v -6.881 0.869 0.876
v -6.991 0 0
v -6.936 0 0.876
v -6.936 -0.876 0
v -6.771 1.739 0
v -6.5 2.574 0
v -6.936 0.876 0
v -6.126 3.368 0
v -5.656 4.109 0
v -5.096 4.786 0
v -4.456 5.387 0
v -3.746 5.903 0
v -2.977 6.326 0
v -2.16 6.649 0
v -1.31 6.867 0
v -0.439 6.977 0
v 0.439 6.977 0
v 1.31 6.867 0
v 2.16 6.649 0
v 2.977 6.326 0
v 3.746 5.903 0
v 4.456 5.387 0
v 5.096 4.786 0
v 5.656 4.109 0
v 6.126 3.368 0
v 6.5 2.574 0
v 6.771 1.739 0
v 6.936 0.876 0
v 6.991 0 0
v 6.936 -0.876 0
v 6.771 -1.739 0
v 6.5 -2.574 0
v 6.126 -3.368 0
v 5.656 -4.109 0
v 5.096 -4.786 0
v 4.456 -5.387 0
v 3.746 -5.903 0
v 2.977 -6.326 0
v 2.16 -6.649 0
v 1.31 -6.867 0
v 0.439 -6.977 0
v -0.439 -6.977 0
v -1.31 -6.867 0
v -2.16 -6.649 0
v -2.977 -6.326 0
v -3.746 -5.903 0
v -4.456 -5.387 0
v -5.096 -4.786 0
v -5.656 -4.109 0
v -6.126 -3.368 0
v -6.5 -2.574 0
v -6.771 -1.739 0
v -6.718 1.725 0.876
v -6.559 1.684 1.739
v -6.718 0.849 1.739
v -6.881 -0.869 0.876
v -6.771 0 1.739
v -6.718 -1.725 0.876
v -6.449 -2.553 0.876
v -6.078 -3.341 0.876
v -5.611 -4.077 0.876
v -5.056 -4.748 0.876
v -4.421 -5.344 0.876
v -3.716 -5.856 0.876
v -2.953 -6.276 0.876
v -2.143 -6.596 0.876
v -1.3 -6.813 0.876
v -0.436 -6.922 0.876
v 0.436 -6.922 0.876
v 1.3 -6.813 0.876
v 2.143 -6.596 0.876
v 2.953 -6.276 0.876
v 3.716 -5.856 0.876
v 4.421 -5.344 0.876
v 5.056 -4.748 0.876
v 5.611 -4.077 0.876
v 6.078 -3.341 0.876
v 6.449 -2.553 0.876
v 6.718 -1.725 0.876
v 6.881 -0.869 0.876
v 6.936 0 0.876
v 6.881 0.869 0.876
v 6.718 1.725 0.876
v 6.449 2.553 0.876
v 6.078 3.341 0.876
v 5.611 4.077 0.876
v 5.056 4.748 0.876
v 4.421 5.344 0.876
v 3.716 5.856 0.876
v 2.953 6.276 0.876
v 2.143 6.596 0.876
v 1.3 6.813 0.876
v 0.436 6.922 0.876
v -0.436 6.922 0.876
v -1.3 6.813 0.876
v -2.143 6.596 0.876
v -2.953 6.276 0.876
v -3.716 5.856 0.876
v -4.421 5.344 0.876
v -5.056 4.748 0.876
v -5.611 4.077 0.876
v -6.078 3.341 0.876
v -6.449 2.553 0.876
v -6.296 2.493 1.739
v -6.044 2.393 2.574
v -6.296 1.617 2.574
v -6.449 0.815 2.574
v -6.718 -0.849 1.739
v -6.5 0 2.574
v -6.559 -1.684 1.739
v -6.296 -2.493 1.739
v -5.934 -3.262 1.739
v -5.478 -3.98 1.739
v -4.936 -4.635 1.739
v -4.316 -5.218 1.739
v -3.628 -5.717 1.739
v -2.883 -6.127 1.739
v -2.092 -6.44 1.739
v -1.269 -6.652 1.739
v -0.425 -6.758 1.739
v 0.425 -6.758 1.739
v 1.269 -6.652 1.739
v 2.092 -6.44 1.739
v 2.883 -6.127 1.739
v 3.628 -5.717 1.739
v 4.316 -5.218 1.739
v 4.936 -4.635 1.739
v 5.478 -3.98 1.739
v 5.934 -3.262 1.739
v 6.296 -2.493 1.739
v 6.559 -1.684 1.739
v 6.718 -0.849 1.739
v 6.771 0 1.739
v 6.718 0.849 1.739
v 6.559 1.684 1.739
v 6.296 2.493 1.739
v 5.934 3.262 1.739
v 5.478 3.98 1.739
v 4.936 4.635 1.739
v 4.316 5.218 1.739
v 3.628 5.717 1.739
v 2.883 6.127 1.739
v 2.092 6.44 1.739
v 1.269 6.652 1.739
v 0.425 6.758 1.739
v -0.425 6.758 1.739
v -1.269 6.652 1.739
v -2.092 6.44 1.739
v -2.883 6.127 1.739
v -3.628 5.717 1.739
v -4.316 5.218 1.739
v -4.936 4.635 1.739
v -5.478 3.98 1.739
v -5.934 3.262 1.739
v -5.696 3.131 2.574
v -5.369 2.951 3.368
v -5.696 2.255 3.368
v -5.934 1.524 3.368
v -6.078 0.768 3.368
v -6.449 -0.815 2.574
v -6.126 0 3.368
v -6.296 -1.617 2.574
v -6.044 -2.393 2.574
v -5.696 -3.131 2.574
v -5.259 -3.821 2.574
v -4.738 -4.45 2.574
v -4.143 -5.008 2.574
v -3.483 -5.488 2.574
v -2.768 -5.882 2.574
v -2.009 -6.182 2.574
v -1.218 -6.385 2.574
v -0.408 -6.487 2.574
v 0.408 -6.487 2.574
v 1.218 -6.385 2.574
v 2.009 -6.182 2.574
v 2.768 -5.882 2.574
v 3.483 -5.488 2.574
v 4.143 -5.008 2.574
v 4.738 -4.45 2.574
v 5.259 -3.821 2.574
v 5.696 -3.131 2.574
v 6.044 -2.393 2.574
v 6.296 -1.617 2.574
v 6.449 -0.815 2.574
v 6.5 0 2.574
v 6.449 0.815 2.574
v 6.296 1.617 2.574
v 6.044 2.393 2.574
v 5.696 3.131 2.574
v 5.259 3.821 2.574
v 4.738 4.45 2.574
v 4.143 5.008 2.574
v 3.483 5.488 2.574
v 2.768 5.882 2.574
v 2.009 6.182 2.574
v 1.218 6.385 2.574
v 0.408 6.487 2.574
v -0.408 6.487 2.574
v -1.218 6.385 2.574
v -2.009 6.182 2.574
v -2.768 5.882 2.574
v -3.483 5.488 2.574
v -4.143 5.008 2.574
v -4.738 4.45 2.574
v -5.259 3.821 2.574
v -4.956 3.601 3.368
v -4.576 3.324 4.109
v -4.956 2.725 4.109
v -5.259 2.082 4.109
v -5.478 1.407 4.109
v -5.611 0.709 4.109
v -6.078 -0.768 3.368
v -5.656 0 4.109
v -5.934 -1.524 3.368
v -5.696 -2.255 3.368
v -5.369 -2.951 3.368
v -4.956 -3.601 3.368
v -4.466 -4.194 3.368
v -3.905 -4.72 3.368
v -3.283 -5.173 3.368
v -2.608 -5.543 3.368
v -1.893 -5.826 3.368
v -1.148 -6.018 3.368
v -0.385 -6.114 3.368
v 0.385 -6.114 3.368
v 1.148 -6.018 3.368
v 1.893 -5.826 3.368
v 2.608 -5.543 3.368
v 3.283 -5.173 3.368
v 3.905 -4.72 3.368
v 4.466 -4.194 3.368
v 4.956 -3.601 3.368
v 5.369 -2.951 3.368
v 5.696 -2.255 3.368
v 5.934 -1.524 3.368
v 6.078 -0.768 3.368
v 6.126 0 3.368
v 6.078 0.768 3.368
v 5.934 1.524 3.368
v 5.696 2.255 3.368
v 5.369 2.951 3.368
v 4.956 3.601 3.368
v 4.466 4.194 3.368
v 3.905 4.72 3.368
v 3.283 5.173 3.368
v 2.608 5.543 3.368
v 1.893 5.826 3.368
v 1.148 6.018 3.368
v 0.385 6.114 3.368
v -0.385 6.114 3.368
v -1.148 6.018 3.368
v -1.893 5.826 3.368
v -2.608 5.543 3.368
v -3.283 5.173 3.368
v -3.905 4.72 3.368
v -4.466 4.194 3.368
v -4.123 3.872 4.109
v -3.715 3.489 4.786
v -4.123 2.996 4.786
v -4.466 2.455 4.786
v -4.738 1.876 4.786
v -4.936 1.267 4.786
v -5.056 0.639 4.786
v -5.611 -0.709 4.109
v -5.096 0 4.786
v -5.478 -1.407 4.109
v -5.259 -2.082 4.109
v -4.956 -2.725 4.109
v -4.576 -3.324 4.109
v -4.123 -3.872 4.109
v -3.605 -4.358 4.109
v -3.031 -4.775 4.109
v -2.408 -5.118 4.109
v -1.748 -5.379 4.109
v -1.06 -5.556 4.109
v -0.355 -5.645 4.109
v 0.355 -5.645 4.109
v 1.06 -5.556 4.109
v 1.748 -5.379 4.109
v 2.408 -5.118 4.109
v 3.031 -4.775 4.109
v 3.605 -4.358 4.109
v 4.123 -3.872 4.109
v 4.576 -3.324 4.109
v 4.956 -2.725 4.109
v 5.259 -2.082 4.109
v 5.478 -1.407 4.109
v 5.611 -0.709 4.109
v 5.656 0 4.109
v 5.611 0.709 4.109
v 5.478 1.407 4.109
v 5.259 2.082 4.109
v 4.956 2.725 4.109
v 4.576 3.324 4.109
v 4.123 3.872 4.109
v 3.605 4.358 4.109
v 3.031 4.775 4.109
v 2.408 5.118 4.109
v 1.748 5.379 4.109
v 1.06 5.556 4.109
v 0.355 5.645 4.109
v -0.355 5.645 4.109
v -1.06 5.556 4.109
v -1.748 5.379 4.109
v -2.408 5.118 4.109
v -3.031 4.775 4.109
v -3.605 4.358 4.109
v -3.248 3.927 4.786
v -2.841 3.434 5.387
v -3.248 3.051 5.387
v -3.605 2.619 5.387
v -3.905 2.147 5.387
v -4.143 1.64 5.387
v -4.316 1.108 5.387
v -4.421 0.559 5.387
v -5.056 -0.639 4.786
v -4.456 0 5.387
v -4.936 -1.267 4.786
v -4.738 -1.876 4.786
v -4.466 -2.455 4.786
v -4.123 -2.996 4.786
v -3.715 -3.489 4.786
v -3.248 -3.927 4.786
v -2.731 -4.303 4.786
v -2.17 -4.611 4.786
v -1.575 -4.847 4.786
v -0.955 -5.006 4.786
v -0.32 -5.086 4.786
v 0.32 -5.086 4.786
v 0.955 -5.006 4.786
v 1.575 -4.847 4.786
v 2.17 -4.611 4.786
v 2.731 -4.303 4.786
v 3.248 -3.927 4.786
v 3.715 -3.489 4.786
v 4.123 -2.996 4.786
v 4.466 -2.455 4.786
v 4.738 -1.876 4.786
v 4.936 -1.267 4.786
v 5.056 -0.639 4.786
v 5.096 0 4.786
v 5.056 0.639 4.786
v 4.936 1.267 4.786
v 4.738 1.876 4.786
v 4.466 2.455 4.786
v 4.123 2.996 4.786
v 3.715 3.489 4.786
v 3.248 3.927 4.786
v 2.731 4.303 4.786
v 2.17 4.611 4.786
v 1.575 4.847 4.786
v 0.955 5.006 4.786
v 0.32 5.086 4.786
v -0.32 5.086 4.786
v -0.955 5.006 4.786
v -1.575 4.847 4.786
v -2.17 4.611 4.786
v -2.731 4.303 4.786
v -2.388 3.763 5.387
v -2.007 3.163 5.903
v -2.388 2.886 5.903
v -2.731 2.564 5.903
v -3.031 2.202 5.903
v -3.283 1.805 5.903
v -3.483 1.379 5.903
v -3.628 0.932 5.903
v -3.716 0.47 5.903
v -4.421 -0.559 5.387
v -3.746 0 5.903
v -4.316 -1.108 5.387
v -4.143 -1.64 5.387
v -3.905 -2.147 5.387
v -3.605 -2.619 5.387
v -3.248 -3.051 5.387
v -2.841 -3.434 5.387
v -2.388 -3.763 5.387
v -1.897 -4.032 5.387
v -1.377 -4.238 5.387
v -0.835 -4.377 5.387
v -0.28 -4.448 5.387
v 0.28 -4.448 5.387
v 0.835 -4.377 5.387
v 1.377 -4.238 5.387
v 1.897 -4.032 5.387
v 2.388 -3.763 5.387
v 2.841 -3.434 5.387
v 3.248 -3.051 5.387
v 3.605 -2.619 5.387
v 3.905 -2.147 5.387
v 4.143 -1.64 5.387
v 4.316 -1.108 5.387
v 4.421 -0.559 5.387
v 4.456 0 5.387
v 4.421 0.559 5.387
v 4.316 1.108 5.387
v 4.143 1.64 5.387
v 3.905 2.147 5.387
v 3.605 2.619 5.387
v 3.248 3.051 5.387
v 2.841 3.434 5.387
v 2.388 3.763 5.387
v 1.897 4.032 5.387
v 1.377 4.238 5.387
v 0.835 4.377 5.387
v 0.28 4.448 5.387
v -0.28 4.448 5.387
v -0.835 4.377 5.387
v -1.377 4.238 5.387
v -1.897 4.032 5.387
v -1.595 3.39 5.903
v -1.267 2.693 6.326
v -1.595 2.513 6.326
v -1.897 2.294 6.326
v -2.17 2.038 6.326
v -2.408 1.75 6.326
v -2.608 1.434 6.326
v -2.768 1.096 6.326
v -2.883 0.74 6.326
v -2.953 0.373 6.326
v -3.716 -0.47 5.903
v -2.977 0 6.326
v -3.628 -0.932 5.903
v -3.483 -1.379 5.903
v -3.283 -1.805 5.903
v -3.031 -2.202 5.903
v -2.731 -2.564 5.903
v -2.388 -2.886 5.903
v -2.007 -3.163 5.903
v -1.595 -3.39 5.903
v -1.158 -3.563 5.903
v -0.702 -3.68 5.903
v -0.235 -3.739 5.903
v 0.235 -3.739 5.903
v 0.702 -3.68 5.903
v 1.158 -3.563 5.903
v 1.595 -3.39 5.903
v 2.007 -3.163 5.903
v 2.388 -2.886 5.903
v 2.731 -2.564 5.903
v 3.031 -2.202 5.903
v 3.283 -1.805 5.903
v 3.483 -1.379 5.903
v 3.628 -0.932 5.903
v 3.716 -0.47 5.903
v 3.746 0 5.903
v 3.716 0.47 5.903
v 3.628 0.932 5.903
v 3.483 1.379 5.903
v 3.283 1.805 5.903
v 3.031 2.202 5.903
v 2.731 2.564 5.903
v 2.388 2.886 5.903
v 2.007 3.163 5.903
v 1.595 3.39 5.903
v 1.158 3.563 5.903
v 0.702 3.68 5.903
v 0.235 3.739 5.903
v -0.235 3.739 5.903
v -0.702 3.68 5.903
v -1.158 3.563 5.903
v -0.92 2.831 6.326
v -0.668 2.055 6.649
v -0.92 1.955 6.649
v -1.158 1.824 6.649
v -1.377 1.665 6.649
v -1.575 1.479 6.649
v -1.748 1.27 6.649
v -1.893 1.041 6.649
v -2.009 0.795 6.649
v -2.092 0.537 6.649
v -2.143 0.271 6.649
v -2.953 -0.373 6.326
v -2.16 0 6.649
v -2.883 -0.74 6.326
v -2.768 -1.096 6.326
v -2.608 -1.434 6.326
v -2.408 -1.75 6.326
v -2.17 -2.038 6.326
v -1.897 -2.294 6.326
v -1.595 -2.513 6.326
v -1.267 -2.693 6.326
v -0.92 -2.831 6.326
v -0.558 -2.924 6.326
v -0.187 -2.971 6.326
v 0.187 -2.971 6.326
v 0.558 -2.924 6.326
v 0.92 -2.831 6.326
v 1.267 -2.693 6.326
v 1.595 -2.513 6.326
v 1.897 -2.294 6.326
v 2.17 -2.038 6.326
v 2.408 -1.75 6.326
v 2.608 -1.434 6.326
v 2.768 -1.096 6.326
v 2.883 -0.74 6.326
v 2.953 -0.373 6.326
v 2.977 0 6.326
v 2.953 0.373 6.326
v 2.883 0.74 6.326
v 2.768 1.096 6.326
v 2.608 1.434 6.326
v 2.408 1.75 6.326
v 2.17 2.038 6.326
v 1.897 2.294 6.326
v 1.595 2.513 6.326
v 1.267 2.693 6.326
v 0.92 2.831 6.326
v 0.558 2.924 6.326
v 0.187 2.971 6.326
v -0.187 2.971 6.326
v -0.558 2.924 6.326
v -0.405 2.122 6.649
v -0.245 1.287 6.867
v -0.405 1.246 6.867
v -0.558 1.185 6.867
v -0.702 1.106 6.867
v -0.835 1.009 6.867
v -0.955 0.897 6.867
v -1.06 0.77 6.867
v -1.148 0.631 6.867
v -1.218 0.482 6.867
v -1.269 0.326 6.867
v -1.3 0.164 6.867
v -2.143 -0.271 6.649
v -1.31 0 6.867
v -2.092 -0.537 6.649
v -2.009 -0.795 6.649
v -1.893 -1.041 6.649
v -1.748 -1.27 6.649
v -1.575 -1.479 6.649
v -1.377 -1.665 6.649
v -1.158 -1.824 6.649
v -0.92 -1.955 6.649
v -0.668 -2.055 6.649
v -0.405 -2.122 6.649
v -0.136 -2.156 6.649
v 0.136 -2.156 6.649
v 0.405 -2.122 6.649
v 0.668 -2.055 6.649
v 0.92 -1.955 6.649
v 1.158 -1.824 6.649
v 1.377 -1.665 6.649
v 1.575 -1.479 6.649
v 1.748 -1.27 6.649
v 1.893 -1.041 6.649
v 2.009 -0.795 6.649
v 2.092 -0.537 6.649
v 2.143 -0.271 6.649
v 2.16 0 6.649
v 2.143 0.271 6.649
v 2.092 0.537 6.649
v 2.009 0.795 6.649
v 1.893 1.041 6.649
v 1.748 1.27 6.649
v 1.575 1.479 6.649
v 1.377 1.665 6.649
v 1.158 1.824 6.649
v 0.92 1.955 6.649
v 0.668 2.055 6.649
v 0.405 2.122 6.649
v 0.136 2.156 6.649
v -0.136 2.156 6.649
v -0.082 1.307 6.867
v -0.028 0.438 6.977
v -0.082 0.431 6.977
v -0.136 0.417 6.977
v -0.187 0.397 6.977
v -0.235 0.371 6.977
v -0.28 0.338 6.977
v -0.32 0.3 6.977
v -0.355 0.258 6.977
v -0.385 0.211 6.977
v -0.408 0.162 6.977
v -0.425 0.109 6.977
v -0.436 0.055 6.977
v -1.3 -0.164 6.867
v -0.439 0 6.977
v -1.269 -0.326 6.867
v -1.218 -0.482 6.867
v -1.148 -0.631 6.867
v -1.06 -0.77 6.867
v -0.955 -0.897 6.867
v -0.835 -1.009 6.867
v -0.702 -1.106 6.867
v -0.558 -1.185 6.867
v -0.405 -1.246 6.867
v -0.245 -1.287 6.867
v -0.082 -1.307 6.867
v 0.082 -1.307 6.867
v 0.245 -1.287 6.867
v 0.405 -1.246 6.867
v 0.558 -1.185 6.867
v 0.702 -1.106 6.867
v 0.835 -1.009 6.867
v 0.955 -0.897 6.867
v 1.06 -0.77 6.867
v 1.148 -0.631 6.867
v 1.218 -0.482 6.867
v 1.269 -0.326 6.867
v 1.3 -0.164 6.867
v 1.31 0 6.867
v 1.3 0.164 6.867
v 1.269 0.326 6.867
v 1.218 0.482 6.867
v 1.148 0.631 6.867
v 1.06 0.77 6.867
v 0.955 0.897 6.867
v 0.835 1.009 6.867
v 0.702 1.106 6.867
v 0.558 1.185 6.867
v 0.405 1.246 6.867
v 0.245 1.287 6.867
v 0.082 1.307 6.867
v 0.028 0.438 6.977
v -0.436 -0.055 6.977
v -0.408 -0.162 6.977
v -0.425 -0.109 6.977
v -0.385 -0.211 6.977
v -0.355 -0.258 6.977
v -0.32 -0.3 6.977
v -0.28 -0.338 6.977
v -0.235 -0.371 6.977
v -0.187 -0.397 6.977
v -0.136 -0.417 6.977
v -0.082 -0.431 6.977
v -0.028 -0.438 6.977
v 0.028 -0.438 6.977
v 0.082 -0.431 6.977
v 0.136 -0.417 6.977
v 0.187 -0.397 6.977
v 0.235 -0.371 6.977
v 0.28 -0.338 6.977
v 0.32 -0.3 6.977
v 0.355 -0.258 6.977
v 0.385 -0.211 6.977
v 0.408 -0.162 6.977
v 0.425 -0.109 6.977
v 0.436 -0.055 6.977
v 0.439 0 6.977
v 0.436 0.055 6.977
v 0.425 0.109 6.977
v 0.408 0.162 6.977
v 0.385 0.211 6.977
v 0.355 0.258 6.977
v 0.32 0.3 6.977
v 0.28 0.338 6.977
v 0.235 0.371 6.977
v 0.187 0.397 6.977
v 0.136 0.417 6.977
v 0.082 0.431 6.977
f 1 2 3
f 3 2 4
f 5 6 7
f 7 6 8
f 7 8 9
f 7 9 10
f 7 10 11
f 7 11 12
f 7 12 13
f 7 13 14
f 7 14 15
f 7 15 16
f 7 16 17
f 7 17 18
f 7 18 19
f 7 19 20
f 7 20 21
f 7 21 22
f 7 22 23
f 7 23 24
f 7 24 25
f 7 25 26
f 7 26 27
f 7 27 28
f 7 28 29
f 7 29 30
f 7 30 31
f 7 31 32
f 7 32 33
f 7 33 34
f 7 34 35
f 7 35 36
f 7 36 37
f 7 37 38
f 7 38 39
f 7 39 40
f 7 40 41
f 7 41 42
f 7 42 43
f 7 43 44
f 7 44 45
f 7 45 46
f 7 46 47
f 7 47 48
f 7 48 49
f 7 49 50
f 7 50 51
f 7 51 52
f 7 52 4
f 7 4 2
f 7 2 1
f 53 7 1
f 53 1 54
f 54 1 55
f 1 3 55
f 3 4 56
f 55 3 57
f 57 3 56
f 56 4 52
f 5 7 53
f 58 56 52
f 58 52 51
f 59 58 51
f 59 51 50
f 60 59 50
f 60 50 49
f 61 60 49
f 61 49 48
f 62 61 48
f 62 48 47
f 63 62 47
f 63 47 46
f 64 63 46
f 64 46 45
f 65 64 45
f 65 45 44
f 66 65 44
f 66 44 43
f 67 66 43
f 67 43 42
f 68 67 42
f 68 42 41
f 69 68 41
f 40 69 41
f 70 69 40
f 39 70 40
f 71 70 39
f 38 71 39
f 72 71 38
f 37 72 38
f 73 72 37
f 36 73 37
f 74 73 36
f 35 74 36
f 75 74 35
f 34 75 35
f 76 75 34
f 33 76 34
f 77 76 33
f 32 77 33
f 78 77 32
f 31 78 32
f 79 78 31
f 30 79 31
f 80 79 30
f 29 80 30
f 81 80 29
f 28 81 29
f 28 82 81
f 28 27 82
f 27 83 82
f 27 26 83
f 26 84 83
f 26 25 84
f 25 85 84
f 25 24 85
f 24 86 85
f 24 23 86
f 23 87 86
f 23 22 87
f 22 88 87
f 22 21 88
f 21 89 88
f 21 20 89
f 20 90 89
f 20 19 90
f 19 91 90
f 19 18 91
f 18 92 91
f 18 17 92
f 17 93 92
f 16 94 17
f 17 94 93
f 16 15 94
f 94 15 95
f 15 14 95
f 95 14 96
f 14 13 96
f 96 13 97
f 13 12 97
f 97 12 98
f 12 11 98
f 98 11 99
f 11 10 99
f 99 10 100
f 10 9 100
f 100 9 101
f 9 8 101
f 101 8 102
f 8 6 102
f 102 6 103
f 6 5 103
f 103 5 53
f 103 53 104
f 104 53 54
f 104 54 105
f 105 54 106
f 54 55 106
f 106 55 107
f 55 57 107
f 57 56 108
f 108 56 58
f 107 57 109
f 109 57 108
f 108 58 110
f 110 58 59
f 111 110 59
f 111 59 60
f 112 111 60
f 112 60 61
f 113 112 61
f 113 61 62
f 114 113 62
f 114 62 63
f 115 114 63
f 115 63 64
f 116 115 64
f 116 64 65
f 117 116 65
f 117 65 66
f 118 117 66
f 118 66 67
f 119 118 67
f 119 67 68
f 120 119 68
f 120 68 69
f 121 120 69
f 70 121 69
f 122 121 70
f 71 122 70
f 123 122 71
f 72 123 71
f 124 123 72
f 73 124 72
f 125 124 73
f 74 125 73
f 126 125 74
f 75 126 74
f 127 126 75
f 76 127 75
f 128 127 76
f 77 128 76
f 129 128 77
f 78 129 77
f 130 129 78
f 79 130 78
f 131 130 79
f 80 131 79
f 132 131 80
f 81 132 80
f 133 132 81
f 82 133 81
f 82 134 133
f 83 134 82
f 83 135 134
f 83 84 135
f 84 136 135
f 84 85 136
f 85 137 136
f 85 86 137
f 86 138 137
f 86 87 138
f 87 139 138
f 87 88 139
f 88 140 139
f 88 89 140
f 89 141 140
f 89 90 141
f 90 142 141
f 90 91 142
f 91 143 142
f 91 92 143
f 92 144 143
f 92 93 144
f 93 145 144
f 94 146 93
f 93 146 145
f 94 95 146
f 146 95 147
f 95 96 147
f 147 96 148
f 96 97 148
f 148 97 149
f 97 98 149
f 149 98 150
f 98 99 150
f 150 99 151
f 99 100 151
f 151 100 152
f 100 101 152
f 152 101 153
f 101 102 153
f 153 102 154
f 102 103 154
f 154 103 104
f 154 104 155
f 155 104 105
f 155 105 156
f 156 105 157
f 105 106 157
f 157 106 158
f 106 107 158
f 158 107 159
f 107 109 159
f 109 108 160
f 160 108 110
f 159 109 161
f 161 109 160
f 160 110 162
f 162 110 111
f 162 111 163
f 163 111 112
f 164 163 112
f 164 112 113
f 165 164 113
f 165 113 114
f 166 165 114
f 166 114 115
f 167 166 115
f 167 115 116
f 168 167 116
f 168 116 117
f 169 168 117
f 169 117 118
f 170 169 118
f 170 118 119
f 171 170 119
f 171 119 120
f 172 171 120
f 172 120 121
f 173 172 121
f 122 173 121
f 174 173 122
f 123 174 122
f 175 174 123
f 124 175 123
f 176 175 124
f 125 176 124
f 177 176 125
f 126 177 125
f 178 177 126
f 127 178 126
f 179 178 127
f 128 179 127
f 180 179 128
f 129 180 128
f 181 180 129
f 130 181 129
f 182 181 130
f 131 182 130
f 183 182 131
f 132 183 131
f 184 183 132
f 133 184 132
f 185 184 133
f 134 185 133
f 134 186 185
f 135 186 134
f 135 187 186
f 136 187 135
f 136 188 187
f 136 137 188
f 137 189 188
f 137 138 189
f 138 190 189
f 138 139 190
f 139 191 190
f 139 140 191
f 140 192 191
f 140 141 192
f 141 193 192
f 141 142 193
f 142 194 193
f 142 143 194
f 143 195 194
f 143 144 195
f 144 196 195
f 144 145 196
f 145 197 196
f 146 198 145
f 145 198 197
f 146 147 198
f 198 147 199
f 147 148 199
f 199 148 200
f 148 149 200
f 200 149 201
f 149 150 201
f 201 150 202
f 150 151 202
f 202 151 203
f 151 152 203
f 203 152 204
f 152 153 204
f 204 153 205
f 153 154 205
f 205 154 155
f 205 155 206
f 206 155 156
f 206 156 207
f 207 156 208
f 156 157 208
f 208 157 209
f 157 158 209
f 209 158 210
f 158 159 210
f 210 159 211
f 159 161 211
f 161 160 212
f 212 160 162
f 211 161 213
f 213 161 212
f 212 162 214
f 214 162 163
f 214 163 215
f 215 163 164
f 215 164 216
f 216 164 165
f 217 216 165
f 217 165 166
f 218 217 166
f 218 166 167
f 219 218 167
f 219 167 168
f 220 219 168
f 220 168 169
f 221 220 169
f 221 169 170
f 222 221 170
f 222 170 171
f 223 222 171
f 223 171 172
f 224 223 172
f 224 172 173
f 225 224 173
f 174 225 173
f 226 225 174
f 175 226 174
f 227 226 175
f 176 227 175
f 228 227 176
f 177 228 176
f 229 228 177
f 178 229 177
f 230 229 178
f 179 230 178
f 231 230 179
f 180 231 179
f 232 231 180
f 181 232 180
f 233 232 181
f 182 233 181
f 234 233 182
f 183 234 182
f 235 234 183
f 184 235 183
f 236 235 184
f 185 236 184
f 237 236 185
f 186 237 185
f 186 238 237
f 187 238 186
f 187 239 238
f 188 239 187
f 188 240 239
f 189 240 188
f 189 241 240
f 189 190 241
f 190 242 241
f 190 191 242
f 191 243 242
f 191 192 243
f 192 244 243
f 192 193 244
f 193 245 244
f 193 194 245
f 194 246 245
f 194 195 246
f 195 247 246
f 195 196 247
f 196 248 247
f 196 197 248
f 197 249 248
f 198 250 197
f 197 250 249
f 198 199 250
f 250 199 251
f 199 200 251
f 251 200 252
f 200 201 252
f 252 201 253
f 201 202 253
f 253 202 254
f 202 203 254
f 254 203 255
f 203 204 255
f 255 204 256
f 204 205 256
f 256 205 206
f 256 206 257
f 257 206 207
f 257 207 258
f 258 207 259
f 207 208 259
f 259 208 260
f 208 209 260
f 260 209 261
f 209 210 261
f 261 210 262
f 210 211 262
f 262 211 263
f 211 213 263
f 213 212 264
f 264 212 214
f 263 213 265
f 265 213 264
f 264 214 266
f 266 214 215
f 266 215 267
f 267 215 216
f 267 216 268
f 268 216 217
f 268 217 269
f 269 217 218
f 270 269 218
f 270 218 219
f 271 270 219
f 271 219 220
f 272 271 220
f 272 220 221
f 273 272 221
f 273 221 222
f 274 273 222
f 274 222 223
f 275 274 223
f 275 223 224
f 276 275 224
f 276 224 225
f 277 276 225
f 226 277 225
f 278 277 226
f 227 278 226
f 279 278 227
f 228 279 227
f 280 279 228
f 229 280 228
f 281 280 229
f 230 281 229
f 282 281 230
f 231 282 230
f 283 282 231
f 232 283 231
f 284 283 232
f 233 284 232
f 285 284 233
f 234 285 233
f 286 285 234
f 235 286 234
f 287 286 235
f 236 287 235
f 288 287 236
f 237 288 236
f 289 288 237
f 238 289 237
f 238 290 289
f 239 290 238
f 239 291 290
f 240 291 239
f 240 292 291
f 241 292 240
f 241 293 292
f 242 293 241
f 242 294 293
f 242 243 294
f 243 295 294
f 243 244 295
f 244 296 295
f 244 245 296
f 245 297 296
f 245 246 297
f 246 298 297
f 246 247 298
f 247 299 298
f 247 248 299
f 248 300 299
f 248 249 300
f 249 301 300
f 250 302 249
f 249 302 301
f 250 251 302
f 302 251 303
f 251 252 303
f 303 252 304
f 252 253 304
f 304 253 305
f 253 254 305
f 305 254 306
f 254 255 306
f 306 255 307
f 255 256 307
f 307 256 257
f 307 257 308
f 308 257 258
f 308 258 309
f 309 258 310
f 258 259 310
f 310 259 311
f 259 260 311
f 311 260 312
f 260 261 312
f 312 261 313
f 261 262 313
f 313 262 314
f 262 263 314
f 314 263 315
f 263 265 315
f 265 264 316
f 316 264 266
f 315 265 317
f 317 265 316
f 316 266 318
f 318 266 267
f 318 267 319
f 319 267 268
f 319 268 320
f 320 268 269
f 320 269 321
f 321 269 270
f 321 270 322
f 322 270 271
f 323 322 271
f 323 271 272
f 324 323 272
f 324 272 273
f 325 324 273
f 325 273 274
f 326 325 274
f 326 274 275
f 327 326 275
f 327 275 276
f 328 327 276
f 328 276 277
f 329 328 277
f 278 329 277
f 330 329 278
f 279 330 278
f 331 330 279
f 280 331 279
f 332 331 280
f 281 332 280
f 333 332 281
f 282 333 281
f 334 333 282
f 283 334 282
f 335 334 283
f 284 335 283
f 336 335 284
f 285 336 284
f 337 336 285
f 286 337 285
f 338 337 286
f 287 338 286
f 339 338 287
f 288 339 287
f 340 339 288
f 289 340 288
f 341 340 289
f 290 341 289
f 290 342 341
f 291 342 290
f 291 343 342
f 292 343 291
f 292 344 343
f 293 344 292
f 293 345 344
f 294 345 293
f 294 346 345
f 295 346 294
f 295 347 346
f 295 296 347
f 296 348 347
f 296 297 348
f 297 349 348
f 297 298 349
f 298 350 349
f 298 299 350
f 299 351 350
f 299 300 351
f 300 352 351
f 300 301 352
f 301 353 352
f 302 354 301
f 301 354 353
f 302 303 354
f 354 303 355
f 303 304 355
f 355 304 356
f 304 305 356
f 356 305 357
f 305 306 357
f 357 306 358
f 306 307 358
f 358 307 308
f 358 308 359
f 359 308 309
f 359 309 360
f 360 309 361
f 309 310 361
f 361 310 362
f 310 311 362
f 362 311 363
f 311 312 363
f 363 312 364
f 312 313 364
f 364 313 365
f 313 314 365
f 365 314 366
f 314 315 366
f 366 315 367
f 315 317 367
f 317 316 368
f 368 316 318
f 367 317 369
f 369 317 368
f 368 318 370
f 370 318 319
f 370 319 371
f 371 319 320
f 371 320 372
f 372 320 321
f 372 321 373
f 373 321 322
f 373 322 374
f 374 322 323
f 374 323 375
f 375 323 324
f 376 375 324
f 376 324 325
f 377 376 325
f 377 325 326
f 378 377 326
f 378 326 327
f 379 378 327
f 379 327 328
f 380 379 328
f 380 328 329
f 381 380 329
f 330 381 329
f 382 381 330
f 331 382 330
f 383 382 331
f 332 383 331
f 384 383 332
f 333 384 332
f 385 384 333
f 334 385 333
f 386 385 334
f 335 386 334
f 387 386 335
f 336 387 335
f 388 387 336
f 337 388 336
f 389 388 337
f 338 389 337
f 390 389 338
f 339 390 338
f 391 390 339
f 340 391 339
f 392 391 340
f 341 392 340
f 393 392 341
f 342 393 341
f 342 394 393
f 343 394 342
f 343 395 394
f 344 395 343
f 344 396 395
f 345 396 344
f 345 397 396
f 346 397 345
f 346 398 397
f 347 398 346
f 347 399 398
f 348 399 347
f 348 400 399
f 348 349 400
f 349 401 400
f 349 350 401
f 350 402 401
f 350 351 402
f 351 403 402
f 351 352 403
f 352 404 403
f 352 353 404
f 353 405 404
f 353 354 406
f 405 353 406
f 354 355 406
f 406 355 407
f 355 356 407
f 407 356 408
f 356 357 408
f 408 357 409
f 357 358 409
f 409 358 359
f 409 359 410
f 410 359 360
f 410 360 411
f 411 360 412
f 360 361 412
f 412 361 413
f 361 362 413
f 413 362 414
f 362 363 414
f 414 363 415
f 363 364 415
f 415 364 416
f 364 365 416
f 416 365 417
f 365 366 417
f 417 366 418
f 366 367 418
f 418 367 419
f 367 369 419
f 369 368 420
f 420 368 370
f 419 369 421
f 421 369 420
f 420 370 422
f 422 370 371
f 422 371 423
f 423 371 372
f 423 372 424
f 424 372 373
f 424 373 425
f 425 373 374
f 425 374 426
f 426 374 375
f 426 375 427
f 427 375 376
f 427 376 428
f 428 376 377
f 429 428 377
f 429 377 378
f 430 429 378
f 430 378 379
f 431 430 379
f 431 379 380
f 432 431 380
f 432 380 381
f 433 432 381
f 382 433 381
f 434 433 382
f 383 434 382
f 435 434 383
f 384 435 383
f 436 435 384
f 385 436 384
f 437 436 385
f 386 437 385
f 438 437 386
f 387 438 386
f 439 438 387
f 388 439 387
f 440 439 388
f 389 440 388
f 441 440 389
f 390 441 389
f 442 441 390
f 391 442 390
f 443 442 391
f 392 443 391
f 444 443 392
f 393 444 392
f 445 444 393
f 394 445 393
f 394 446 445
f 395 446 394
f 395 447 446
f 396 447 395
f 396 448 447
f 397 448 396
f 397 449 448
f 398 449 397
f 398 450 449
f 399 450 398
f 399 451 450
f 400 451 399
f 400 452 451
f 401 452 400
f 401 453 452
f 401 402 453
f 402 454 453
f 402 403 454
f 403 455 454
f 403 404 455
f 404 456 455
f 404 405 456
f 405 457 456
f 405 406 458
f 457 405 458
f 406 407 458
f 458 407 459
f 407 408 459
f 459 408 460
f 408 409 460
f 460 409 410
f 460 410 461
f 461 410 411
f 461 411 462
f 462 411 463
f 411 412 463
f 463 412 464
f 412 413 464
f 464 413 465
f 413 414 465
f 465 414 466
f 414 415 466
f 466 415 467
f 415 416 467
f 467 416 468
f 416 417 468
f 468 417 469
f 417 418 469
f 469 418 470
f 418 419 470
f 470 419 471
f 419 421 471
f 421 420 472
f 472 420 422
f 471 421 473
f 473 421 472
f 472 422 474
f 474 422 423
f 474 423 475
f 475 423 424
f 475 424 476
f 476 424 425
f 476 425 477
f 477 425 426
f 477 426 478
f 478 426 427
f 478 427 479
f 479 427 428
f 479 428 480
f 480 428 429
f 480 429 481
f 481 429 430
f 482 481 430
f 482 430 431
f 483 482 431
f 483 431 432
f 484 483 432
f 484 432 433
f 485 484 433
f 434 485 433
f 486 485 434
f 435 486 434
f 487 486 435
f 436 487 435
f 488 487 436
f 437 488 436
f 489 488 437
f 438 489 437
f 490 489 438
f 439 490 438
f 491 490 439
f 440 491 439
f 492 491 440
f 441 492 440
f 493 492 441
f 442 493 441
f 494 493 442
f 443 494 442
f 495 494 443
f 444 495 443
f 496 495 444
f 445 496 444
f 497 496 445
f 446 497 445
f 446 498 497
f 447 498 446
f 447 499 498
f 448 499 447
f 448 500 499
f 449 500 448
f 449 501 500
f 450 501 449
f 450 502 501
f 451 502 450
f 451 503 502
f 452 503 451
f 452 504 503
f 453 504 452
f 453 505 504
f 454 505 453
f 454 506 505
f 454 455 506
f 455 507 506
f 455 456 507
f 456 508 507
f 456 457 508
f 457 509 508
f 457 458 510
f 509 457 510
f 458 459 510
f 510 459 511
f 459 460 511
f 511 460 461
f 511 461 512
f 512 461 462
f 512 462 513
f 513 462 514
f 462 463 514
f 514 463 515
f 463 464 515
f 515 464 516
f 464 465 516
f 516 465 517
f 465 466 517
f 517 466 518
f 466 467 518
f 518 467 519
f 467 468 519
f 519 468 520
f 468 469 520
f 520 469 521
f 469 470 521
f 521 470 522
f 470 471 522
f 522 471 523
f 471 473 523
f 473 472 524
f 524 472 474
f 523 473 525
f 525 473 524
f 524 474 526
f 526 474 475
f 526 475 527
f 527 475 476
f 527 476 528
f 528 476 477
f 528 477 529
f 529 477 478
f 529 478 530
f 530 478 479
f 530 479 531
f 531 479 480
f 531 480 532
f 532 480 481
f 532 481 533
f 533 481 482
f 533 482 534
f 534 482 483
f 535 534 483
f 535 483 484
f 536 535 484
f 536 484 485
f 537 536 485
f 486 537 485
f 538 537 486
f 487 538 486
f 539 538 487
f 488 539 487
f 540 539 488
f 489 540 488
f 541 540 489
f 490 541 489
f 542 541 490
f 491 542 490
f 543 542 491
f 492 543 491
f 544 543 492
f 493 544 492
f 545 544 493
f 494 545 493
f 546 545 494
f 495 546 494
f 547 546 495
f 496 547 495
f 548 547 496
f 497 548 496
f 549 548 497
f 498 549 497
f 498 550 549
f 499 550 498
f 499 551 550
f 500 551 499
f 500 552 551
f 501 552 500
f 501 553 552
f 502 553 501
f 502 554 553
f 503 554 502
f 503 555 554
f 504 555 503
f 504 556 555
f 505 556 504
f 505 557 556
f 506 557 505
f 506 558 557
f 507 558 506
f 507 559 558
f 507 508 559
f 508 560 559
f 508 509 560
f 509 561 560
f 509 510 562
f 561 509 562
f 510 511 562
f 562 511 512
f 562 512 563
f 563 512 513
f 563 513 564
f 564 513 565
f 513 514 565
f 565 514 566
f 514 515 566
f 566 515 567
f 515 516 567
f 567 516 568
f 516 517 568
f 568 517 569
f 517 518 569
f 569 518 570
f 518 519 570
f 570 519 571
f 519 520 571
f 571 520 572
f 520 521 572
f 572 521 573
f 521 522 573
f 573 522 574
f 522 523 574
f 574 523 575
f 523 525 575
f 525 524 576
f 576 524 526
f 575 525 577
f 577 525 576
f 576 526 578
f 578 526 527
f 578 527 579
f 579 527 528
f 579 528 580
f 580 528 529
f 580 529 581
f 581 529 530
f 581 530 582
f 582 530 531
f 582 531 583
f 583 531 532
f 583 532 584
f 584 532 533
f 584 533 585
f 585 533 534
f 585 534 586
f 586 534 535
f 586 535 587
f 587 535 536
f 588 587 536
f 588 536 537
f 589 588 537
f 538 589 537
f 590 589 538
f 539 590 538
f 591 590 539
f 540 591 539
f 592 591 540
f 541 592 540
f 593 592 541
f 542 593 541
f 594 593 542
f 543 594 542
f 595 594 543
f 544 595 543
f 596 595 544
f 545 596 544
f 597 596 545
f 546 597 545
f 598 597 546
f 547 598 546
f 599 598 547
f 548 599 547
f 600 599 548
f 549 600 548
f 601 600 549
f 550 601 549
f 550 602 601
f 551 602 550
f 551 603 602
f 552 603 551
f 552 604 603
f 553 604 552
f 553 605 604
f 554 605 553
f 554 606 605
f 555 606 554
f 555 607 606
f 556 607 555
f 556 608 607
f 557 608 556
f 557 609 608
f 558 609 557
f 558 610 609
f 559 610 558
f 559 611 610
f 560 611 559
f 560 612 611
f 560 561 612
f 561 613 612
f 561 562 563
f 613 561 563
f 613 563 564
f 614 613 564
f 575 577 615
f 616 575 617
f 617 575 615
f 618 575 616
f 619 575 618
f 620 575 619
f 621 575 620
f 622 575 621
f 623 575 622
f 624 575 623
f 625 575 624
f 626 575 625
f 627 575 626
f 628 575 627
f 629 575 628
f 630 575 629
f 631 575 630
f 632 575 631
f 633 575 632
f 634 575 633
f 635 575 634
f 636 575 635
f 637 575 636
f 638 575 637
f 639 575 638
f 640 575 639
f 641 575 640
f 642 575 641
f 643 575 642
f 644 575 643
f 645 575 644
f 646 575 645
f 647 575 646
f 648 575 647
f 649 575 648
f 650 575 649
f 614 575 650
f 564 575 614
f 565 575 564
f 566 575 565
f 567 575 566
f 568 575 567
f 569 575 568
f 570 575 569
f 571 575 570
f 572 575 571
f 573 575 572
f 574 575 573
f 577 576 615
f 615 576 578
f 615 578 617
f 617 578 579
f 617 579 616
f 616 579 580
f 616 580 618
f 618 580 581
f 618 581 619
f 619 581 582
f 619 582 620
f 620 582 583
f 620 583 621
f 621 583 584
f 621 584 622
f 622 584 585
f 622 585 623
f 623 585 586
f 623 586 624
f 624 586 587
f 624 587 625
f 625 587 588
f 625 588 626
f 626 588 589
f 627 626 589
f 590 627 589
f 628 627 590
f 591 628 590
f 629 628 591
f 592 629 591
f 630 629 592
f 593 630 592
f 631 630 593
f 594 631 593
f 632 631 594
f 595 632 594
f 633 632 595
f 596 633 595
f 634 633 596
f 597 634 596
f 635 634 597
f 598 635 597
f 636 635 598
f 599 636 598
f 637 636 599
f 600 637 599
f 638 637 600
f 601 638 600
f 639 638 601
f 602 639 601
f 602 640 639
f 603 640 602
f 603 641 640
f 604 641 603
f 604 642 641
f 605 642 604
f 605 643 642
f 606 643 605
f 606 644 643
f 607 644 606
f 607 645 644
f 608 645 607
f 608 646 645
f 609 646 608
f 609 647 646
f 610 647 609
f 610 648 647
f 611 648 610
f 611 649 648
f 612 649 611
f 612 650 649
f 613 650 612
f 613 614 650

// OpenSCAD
difference(){

	sphere(r=6.9911,$fn=50);

	translate([-10,-10,-10]){
		#cube([20,20,10]);
	}
}
